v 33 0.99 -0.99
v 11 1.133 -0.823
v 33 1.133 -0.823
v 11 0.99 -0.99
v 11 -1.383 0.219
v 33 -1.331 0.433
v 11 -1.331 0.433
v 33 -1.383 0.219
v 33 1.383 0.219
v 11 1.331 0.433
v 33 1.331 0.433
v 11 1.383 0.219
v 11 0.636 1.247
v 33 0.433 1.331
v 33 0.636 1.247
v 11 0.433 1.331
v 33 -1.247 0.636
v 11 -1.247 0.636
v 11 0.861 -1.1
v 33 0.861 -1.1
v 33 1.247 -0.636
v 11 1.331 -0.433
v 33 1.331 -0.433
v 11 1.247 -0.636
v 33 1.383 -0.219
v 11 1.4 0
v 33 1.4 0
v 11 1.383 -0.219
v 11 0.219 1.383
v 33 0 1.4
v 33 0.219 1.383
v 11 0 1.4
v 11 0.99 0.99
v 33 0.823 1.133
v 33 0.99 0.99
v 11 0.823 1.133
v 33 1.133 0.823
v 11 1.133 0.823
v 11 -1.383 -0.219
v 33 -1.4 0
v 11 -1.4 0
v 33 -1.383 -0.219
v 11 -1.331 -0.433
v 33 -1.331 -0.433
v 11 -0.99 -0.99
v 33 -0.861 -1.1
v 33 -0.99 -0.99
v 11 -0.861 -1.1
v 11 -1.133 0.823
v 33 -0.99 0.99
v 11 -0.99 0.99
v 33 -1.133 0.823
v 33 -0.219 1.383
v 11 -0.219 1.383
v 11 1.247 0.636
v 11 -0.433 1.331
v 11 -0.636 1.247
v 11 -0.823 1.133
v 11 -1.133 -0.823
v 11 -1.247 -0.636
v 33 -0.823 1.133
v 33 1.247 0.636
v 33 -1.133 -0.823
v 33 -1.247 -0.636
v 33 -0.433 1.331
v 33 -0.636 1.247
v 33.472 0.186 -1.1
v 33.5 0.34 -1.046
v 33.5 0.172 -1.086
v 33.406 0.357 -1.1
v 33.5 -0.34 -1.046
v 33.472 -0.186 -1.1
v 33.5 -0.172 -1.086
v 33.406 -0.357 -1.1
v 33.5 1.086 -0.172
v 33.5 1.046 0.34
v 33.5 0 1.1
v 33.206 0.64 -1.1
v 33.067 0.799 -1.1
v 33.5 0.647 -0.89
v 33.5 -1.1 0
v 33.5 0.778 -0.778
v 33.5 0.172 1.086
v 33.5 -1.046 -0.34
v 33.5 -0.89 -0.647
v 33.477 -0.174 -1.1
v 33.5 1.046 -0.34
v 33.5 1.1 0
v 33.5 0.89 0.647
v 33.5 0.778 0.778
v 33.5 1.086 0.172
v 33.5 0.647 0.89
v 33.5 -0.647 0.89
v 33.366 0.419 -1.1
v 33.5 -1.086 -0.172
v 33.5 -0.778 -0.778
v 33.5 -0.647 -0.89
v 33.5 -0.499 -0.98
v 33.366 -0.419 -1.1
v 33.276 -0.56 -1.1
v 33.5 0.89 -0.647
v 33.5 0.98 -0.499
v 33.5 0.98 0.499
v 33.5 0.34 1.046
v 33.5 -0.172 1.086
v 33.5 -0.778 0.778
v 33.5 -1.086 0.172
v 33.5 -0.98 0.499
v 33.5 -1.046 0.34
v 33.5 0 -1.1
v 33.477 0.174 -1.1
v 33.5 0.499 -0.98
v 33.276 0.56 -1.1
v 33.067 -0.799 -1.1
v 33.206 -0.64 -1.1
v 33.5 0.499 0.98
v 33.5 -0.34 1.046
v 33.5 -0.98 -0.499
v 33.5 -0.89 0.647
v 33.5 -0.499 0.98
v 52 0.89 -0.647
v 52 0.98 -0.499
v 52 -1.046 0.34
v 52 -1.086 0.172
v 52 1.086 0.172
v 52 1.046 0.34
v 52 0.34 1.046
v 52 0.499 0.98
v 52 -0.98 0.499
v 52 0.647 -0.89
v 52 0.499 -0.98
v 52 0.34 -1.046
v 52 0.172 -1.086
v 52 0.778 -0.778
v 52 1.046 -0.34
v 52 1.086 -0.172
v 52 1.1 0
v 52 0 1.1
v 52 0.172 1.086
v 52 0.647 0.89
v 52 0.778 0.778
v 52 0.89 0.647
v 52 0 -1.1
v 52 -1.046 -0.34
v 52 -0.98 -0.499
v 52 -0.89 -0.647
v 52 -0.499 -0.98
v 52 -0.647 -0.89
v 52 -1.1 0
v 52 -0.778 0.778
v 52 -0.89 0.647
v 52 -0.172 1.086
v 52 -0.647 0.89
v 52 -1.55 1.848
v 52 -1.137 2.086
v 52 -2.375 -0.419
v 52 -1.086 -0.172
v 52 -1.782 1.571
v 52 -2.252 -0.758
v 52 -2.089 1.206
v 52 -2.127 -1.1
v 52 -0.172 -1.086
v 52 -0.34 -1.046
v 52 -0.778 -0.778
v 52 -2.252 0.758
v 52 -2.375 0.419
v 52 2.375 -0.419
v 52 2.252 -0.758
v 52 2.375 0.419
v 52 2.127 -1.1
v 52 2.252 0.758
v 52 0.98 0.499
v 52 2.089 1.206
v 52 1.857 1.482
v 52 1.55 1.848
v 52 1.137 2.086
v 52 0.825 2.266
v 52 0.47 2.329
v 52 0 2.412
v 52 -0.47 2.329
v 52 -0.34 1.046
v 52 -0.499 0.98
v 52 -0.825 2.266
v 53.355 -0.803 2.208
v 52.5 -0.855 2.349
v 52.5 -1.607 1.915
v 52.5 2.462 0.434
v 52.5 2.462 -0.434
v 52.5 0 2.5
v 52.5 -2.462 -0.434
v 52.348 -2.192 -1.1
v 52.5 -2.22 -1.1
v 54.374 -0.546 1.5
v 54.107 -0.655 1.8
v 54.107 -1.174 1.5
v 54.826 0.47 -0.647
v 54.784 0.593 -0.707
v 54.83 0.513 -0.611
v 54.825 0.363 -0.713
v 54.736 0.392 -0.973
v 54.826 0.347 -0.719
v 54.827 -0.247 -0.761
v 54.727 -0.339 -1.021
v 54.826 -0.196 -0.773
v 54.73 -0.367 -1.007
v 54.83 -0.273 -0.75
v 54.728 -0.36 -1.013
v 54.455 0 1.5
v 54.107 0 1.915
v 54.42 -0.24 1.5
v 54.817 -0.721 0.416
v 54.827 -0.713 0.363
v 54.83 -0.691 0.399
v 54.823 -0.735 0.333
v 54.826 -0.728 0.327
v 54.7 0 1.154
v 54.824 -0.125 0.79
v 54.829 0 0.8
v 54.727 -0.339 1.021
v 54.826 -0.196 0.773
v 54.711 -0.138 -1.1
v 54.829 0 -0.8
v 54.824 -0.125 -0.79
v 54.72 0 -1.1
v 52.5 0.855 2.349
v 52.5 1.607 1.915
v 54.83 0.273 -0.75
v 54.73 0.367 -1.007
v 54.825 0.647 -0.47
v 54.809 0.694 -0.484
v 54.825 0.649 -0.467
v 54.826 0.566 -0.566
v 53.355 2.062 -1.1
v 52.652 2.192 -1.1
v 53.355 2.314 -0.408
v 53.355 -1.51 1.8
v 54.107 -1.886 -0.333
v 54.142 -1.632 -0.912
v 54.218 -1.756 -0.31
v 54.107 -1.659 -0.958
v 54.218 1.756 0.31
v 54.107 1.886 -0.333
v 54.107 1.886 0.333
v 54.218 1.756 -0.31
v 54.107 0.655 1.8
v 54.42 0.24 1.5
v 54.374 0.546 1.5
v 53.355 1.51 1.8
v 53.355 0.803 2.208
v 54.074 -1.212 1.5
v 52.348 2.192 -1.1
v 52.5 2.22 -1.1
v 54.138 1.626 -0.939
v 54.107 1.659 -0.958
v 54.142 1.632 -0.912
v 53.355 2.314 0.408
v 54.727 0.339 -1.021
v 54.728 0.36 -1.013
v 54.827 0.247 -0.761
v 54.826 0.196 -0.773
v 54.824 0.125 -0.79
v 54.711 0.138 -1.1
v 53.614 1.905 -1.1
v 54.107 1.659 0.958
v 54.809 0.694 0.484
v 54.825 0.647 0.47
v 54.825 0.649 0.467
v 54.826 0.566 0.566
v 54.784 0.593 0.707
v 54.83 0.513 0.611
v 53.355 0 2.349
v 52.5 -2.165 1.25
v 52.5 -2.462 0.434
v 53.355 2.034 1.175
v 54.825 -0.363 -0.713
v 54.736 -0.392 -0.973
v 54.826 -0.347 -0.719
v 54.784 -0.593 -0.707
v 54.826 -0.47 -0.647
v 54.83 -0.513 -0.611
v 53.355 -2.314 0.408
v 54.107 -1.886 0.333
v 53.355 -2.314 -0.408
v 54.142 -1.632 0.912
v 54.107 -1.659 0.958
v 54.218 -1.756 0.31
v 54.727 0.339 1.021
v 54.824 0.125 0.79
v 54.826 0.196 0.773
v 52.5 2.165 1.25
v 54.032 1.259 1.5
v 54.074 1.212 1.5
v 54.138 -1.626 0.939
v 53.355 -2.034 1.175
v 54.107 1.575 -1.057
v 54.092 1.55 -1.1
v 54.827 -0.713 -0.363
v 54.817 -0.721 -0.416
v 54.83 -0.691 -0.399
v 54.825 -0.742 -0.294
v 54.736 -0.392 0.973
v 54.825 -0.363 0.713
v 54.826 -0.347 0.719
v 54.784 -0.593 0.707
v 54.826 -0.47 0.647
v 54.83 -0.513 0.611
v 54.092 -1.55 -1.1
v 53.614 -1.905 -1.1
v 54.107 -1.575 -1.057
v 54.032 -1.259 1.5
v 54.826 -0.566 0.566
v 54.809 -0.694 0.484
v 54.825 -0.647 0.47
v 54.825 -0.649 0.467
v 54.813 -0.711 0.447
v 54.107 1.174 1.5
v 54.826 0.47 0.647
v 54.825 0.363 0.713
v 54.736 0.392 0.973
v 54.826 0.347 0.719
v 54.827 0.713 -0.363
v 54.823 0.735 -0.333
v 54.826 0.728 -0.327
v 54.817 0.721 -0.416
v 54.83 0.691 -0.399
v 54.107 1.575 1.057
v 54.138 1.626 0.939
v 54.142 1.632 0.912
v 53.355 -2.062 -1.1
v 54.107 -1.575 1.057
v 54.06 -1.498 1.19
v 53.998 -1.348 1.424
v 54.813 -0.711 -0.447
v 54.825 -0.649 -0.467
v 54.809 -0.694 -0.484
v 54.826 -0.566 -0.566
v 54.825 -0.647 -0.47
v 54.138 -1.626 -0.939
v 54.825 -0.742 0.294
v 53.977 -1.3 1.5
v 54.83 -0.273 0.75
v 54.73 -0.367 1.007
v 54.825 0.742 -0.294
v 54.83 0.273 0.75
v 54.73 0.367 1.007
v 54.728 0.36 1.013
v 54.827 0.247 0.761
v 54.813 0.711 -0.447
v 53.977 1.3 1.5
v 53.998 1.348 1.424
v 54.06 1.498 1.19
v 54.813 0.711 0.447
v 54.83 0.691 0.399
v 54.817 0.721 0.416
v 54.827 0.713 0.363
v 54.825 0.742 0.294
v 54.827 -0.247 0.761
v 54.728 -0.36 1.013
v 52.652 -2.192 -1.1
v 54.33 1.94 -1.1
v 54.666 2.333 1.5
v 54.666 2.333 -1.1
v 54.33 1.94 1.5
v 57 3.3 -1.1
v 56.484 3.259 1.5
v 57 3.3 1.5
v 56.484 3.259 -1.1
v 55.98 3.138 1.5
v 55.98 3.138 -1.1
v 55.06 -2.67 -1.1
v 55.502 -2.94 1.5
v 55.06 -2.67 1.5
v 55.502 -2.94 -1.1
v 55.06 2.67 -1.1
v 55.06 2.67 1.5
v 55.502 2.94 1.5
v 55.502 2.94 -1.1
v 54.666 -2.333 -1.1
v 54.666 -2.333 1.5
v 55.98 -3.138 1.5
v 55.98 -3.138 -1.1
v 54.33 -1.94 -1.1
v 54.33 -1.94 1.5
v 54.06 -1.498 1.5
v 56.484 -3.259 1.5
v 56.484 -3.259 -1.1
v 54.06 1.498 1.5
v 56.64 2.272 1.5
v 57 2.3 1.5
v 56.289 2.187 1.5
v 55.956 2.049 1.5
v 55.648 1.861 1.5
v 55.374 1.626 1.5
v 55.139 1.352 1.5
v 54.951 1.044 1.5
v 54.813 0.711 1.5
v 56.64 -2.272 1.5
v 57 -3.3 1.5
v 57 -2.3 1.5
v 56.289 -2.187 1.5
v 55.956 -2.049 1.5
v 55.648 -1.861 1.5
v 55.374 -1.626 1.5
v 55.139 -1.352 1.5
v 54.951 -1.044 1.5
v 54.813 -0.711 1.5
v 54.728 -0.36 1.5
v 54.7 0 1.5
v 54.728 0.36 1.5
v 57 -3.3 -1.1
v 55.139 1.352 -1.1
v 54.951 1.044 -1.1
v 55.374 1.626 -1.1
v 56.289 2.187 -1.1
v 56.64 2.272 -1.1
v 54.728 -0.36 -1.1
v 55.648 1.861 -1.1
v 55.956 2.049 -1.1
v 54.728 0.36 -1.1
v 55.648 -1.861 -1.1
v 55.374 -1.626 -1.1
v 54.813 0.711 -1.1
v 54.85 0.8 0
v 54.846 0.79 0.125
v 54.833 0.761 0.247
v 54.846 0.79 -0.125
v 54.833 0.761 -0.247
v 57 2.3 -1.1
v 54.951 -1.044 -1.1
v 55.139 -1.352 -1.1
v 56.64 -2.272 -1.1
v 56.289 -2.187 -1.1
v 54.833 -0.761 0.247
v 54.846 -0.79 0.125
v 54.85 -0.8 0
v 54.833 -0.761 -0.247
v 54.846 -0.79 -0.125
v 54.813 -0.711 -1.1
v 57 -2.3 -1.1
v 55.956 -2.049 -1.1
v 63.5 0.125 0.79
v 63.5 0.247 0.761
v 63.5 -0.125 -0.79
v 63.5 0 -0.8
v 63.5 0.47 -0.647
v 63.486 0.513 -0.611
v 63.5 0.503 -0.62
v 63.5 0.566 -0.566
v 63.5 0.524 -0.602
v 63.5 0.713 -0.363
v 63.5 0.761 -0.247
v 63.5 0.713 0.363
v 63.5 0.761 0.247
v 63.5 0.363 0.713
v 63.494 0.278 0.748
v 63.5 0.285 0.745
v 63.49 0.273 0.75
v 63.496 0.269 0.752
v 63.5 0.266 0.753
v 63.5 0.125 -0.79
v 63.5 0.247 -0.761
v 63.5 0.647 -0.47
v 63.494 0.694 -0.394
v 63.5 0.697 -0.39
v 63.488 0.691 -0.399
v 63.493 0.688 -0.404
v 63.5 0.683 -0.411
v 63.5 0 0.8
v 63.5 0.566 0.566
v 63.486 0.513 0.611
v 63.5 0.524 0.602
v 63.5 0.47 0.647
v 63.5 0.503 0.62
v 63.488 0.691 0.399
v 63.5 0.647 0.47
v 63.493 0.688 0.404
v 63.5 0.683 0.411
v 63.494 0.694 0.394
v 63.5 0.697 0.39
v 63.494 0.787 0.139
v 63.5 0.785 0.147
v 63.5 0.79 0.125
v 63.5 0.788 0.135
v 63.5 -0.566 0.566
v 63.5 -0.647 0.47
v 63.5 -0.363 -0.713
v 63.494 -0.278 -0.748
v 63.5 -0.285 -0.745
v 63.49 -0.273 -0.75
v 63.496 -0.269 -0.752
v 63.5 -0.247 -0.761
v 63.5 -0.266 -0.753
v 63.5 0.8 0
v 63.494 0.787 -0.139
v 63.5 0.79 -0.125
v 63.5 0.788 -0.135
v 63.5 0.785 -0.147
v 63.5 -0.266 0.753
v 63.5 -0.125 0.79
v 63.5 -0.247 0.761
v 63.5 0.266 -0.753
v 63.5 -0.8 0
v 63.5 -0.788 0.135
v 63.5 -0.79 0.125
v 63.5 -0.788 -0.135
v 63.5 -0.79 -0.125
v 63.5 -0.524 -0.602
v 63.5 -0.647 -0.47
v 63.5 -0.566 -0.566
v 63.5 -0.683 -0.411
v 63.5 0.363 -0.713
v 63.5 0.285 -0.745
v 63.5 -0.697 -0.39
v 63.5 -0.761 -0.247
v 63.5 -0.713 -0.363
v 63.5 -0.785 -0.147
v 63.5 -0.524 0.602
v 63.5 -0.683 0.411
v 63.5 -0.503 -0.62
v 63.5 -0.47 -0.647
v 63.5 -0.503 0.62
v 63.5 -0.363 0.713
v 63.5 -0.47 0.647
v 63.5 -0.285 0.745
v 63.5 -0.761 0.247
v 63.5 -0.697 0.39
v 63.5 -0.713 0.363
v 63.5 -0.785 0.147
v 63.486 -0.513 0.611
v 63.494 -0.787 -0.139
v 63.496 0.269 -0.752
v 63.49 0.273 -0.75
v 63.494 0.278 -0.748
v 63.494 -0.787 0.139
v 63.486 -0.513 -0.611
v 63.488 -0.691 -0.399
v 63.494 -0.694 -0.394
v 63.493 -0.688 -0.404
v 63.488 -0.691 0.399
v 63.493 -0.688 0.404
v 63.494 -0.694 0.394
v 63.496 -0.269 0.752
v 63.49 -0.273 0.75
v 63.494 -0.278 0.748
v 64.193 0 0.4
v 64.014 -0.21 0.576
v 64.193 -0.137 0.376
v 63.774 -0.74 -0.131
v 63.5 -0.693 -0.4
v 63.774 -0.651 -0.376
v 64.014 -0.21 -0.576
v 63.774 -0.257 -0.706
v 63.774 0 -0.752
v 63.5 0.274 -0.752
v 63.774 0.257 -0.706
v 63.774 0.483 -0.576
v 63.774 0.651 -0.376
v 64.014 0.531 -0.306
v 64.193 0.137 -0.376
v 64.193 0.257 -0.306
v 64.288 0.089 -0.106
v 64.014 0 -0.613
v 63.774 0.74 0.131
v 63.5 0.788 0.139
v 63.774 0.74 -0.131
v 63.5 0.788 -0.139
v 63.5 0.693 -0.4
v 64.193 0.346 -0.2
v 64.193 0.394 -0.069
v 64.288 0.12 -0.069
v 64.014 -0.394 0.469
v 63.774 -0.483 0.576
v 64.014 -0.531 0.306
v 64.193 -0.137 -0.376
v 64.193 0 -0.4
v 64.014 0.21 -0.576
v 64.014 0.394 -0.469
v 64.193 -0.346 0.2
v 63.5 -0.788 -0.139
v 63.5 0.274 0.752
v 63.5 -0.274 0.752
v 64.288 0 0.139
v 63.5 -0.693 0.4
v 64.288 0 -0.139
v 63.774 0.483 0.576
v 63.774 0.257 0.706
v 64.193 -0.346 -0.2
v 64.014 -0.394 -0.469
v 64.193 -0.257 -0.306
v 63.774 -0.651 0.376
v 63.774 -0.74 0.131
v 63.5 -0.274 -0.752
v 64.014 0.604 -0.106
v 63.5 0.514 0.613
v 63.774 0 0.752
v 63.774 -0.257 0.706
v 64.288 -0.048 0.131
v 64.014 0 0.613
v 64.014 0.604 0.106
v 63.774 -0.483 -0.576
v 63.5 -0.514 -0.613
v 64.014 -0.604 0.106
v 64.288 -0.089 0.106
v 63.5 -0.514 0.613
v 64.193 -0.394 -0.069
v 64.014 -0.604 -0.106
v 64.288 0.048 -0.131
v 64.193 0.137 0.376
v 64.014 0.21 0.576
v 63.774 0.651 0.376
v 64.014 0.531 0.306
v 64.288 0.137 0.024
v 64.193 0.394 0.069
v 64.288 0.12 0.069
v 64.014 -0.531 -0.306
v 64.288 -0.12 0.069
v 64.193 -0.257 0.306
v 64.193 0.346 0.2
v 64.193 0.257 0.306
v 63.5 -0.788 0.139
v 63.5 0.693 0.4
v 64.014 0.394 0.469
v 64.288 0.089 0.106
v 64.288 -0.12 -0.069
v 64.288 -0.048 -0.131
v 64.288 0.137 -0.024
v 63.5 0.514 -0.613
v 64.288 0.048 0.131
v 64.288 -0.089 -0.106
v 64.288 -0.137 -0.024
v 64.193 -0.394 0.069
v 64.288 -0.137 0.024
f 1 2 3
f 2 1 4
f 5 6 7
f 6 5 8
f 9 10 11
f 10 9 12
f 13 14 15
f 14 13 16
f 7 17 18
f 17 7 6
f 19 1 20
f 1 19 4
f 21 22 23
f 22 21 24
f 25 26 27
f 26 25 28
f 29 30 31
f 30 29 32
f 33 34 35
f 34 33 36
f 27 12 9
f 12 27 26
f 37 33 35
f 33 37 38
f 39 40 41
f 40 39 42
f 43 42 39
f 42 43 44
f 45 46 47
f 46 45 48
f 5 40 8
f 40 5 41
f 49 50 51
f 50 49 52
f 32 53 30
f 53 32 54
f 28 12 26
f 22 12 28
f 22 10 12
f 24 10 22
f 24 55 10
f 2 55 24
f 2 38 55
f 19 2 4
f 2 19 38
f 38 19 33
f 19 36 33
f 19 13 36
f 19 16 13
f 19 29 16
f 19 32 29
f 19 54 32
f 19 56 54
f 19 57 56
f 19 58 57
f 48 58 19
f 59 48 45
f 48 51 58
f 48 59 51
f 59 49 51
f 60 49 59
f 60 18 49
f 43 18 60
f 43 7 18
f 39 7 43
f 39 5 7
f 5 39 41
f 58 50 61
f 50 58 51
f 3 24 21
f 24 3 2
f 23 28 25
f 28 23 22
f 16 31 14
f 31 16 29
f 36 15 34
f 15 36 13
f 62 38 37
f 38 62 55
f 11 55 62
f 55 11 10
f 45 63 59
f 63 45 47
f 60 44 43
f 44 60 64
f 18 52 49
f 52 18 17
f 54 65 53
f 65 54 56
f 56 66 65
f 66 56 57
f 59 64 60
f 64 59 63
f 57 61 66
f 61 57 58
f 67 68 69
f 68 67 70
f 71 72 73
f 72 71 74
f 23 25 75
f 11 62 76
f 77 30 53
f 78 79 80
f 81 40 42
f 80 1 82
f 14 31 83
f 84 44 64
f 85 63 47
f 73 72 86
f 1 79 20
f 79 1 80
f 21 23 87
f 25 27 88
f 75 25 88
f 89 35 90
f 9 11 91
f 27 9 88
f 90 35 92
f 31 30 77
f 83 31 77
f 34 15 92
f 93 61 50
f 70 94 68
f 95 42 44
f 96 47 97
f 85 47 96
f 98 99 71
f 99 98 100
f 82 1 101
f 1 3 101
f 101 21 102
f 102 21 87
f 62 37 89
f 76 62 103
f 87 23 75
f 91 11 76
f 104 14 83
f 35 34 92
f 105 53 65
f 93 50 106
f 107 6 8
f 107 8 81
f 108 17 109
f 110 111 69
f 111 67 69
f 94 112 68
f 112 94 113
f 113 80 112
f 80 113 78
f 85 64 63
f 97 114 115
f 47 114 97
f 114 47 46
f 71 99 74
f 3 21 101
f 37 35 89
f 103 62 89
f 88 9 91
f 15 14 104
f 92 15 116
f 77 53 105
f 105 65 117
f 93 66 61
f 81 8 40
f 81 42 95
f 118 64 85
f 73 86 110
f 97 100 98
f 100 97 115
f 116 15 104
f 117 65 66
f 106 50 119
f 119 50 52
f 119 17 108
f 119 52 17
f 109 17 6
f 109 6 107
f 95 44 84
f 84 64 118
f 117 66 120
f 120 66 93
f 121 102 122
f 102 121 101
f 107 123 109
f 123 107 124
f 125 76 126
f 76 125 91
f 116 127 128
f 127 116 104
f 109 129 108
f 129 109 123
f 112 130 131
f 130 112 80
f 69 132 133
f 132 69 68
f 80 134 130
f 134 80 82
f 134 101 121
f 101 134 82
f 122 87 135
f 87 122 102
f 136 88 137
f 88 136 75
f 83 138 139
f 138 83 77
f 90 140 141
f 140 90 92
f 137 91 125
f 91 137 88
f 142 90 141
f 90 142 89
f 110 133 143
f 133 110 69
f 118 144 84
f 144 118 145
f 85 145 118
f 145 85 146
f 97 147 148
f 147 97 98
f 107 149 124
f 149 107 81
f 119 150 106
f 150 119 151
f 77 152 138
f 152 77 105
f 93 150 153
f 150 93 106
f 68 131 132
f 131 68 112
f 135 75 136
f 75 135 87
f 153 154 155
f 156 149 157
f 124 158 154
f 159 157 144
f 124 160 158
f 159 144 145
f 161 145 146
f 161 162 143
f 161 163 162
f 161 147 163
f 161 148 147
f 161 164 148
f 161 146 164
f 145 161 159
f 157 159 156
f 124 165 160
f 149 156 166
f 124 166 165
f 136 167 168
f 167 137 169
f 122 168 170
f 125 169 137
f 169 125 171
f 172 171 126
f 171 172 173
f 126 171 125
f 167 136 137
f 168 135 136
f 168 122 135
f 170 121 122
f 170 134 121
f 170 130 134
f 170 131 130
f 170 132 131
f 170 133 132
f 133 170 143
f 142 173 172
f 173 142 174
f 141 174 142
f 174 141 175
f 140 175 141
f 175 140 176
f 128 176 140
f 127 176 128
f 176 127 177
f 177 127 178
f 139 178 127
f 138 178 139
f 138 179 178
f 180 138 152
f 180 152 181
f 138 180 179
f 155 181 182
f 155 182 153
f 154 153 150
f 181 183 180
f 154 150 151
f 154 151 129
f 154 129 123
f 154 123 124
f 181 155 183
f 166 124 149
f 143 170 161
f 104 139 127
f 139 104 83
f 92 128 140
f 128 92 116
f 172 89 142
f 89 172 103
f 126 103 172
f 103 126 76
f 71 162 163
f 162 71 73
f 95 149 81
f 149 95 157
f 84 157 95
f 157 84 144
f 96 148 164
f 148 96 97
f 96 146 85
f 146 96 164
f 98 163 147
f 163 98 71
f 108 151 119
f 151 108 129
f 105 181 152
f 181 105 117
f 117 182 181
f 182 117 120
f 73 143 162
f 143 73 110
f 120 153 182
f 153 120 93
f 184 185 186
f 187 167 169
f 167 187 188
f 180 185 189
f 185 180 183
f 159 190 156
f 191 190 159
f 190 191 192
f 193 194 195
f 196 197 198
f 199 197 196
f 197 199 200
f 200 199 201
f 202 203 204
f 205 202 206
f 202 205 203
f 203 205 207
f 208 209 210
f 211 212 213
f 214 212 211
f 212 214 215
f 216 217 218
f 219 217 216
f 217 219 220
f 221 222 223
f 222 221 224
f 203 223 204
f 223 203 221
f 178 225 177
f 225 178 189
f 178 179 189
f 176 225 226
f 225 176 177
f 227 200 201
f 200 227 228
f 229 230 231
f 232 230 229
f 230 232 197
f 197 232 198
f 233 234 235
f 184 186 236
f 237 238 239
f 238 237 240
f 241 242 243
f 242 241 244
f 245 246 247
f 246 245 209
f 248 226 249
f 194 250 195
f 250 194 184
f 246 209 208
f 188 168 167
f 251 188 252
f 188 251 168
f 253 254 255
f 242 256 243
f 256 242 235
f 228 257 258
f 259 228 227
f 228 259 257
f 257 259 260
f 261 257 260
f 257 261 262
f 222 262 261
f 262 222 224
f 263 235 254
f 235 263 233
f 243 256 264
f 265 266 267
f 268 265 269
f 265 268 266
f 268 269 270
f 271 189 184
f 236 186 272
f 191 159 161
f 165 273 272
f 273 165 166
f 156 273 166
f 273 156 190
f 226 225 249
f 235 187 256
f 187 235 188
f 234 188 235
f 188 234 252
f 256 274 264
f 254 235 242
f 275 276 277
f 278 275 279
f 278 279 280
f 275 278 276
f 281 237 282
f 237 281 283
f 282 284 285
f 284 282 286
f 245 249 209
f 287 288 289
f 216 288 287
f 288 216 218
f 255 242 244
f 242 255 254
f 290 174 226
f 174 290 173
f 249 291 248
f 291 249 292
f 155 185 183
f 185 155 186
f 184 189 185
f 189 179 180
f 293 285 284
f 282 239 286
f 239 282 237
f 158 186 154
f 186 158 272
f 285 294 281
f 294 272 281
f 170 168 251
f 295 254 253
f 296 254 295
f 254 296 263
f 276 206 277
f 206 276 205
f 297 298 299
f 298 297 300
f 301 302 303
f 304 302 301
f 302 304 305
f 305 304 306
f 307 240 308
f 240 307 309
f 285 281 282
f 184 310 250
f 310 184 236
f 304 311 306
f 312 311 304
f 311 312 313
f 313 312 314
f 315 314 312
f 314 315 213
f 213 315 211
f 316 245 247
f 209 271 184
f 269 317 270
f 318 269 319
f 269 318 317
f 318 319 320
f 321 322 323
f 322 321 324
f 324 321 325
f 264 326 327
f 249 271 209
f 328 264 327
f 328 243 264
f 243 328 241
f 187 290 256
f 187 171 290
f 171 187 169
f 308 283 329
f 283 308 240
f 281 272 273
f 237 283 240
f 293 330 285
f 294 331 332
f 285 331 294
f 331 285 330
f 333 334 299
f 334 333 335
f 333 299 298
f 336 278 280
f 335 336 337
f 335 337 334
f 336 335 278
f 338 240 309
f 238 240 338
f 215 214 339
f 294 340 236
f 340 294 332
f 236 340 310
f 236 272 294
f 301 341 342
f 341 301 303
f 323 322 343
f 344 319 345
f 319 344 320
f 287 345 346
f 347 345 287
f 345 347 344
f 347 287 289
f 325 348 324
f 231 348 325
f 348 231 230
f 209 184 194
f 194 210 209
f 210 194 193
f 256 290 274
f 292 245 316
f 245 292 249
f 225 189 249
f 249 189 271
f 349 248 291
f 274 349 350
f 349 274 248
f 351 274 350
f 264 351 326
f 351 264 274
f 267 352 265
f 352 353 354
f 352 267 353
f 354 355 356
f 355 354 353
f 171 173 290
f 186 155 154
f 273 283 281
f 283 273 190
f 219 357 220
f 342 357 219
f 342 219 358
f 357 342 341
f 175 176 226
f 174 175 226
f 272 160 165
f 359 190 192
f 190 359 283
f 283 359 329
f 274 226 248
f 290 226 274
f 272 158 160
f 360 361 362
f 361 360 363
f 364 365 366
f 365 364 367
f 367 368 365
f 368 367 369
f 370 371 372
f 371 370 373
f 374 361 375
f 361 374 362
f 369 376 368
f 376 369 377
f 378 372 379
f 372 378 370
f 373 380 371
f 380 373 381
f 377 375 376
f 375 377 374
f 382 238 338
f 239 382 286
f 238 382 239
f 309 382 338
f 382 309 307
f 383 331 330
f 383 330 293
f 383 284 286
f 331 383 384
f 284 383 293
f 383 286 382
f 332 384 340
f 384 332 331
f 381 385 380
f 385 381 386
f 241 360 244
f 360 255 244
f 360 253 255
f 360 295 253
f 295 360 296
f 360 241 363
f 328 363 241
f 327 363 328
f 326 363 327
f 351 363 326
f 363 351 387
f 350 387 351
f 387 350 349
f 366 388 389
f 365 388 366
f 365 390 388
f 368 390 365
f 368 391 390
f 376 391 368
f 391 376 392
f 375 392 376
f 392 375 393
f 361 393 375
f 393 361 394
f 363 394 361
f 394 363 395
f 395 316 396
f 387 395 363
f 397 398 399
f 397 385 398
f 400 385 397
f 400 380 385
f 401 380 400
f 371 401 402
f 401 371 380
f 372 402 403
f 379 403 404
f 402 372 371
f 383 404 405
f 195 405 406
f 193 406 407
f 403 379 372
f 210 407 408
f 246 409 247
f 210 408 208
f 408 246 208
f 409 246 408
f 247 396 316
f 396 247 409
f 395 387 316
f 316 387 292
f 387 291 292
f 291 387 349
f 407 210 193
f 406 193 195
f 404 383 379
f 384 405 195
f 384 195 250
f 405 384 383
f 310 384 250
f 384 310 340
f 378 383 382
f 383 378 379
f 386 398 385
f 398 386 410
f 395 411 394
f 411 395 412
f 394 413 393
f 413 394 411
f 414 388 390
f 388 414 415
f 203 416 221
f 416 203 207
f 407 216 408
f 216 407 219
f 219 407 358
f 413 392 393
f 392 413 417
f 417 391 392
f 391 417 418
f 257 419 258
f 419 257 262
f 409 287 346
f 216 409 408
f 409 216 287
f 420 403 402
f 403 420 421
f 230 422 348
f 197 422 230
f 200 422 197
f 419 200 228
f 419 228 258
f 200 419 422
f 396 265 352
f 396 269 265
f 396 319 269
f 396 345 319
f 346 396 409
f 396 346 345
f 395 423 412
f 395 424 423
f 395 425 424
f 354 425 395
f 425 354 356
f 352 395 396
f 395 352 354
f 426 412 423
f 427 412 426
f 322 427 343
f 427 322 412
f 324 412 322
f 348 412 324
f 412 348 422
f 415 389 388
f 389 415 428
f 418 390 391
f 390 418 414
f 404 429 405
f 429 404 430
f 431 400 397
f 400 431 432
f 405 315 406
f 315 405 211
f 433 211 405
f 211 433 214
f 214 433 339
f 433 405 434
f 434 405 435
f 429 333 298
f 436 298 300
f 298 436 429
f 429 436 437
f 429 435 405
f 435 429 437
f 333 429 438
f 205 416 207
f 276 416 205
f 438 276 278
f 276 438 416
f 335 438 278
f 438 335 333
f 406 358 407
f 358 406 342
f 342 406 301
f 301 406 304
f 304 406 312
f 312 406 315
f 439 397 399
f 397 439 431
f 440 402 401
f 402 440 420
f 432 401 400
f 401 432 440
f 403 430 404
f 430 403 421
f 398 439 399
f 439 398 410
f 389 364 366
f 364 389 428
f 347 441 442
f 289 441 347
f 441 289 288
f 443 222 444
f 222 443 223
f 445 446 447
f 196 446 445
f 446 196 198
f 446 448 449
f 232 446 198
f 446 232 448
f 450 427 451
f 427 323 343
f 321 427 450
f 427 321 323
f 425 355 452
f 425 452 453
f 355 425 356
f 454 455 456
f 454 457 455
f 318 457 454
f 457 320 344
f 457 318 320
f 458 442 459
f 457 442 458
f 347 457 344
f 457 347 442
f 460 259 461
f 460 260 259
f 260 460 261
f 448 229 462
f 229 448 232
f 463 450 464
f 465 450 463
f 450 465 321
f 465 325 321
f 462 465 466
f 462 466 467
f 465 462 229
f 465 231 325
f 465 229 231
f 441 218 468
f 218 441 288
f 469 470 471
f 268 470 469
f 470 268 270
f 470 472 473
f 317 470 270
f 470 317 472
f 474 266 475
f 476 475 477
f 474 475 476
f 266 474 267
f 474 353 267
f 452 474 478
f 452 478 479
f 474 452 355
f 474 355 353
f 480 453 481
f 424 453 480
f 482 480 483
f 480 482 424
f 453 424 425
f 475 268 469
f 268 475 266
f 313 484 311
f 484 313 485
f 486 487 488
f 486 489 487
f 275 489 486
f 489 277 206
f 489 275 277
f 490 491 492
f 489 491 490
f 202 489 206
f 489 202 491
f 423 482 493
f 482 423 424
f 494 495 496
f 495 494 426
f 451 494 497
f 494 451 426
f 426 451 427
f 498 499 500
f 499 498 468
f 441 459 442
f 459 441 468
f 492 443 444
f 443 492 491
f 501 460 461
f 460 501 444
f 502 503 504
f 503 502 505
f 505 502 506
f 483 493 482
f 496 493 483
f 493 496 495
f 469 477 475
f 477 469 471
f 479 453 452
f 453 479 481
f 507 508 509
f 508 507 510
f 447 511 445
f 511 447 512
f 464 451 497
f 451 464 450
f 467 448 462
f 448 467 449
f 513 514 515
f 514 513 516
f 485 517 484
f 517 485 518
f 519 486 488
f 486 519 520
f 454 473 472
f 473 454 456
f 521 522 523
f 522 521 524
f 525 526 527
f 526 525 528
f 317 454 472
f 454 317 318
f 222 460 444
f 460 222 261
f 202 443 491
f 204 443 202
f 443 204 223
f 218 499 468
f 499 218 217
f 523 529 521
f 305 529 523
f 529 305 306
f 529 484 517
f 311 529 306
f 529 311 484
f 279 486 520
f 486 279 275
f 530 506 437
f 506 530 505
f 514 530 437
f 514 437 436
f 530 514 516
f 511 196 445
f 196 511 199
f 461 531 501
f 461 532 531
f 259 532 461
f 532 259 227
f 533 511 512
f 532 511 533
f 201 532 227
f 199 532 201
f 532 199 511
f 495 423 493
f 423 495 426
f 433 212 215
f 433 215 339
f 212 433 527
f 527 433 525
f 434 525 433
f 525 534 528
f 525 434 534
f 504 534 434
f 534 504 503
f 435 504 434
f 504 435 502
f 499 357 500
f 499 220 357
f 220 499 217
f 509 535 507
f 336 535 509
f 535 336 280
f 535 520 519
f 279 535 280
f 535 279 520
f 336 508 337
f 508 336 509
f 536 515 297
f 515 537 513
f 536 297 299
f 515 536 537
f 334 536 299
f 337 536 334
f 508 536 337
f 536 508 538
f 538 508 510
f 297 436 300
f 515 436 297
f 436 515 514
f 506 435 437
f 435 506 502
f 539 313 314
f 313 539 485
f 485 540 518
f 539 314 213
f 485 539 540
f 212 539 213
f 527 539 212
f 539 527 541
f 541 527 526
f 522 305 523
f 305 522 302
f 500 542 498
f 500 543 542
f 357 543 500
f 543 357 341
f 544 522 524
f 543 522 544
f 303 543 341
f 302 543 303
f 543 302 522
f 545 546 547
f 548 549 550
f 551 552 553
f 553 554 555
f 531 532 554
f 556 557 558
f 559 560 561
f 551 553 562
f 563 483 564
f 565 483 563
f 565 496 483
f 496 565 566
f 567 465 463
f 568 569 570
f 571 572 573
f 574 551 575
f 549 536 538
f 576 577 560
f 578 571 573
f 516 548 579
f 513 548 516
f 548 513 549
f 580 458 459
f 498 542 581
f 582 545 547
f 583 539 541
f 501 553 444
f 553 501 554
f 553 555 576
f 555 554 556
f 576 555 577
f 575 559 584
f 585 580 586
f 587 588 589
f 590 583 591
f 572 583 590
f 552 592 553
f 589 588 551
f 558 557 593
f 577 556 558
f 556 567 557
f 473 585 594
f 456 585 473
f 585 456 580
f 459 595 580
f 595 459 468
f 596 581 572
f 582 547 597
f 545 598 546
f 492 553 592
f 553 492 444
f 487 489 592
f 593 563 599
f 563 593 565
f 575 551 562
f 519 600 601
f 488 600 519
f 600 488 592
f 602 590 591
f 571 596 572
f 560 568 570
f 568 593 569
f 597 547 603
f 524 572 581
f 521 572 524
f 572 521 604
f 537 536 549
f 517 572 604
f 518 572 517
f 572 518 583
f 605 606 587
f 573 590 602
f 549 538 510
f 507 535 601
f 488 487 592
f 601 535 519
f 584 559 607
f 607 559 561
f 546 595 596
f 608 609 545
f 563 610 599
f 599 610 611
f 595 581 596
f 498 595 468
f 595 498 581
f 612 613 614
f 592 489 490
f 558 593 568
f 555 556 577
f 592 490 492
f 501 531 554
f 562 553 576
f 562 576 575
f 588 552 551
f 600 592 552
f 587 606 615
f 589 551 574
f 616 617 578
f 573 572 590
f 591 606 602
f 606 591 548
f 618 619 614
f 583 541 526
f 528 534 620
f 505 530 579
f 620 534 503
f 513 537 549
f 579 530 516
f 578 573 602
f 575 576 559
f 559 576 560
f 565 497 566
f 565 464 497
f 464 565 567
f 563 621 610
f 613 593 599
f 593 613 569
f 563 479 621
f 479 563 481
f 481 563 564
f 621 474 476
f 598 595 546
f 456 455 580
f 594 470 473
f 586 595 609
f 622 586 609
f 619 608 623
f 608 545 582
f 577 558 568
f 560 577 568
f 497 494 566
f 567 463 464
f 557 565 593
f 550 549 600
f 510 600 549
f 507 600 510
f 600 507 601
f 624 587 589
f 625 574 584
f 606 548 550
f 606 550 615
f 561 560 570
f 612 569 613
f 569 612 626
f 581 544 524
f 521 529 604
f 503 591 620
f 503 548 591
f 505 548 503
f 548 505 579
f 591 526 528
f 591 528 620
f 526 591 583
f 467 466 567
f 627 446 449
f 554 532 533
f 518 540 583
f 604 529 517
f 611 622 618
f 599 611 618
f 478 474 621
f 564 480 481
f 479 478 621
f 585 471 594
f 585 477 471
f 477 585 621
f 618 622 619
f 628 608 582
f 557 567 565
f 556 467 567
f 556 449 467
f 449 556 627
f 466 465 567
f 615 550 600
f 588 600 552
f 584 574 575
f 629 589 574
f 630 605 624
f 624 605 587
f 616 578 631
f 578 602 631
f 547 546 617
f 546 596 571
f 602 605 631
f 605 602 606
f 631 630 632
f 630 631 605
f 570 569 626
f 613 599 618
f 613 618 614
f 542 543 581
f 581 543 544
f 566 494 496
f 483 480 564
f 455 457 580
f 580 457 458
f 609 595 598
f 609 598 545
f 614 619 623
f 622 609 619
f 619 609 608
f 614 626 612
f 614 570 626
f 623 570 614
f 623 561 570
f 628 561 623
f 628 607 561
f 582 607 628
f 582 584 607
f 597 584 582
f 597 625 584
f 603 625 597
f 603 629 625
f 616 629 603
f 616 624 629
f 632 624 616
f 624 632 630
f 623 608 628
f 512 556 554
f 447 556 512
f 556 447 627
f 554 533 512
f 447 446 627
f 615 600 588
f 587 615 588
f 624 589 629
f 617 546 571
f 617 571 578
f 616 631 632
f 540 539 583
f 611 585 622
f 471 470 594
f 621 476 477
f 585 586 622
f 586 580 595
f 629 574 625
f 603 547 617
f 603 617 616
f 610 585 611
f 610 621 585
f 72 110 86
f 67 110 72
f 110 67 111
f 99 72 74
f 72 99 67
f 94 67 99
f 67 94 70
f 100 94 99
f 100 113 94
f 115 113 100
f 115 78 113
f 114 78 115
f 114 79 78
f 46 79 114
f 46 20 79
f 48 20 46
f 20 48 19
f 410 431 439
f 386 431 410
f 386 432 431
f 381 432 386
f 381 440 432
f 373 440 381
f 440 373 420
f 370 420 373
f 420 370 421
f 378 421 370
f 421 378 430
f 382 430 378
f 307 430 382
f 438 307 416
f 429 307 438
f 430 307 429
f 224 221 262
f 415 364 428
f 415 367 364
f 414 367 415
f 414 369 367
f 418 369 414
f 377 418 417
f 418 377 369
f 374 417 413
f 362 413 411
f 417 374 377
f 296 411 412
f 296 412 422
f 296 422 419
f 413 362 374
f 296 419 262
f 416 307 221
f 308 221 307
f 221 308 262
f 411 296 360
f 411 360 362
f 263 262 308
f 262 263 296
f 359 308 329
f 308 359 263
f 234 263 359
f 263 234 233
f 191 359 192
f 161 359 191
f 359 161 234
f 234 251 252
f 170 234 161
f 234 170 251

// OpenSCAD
////////////////////////////////////////////////////////////////////////
// Initial Revision:
//   23-Mar-2016 
//
// Author:
//
//   David Crook <dpcrook@users.noreply.github.com>
//
// Inspired by:
//
//  http://www.thingiverse.com/thing:909499
//
// Description:
//
//  I enjoyed the design of the xwing fighter model mentioned above, but found
//  a part of the print would be fragile or outright fail: the four laser
//  cannons (http://starwars.wikia.com/wiki/KX9_laser_cannon). This design is
//  a print-friendly version of a cannon which resembles the original.
//
// Revisions/Notes:
//
//   v1:
//   - used .STL imported into OpenSCAD to base dimensions on
//
////////////////////////////////////////////////////////////////////////



h_c = 5;
y_c = 10;

difference () {
    rotate([0,90,0])
    xwing_shooter () ;
    
    // cut to make flat for simpler print
    translate([0,-y_c/2, -(h_c+ 1.1)])
    cube([70, y_c, h_c]);
}


module xwing_shooter () {

    zstart1 = 11;
    h1 = 22;
    h1t = 0.5;
    rad1 = 1.4;
    rad2 = 1.1;
    h2 = 18.5;
    
    // small number
    e=.02;
    
    //import("xwing_sliced.stl");
    
    // main shaft
    translate([0, 0, zstart1]) {
        cylinder($fn = 40, $fa = 12, $fs = 2, h = h1, r1 = rad1, r2 = rad1, center = false);
        translate([0, 0, h1])
            cylinder($fn = 40, $fa = 12, $fs = 2, h = h1t, r1 = rad1, r2 = rad2, center = false);
         translate([0, 0, h1 + h1t])
            cylinder($fn = 40, $fa = 12, $fs = 2, h = h2, r1 = rad2, r2 = rad2, center = false); 
    }
    
    
    // gun port
    zstart2 = zstart1 + h1 + h1t + h2;  
    
    gun_bat_r = 2.5;
    gun_bat_r_addz = 0.5;
    cup_outer_r = 3.3; 
    cup_inner_r = cup_outer_r - 1; 
    cup_width = 3;
    
    // start with batt and cup
    translate([0, 0, zstart2]) {
        difference() {
            translate([0, 0, gun_bat_r_addz])
              sphere($fn = 18, r = gun_bat_r);
            
            translate([-3, -3, -3])
              cube([10,10,3]);
        }
        
        translate([-(cup_width / 2), 0, 2* gun_bat_r])
        rotate([0, 90, 0])
        difference() {
            cylinder($fn = 40, $fa = 12, $fs = 2, h = cup_width, r1 = cup_outer_r, r2 = cup_outer_r, center = false);
            
            translate ([0, 0, -e])
            cylinder($fn = 40, $fa = 12, $fs = 2, h = cup_width + 2*e, r1 = cup_inner_r, r2 = cup_inner_r, center = false);
            translate ([-2*cup_outer_r, -cup_outer_r, -e ])
            cube([2*cup_outer_r,2*cup_outer_r, cup_width + 2*e]);
        }
     }
     
    zstart3 = zstart2 + gun_bat_r + gun_bat_r_addz;
     
    shooty_r = 0.8;
    shooty_h = 9; 
    shooty_tangent_offset = -0.5;
     
    // shooty part
    translate([0, 0, zstart3]) {
        translate([0,0, shooty_tangent_offset])
        cylinder($fn = 40, $fa = 12, $fs = 2, h = shooty_h, r1 = shooty_r, r2 = shooty_r, center = false);
    }
    
    zstart4 = zstart3 + shooty_h + shooty_tangent_offset;
    translate([0, 0, zstart4]) {
        translate([0,0, 0])
              sphere($fn = 18, r = shooty_r);
    }
    
}



 
 
 
